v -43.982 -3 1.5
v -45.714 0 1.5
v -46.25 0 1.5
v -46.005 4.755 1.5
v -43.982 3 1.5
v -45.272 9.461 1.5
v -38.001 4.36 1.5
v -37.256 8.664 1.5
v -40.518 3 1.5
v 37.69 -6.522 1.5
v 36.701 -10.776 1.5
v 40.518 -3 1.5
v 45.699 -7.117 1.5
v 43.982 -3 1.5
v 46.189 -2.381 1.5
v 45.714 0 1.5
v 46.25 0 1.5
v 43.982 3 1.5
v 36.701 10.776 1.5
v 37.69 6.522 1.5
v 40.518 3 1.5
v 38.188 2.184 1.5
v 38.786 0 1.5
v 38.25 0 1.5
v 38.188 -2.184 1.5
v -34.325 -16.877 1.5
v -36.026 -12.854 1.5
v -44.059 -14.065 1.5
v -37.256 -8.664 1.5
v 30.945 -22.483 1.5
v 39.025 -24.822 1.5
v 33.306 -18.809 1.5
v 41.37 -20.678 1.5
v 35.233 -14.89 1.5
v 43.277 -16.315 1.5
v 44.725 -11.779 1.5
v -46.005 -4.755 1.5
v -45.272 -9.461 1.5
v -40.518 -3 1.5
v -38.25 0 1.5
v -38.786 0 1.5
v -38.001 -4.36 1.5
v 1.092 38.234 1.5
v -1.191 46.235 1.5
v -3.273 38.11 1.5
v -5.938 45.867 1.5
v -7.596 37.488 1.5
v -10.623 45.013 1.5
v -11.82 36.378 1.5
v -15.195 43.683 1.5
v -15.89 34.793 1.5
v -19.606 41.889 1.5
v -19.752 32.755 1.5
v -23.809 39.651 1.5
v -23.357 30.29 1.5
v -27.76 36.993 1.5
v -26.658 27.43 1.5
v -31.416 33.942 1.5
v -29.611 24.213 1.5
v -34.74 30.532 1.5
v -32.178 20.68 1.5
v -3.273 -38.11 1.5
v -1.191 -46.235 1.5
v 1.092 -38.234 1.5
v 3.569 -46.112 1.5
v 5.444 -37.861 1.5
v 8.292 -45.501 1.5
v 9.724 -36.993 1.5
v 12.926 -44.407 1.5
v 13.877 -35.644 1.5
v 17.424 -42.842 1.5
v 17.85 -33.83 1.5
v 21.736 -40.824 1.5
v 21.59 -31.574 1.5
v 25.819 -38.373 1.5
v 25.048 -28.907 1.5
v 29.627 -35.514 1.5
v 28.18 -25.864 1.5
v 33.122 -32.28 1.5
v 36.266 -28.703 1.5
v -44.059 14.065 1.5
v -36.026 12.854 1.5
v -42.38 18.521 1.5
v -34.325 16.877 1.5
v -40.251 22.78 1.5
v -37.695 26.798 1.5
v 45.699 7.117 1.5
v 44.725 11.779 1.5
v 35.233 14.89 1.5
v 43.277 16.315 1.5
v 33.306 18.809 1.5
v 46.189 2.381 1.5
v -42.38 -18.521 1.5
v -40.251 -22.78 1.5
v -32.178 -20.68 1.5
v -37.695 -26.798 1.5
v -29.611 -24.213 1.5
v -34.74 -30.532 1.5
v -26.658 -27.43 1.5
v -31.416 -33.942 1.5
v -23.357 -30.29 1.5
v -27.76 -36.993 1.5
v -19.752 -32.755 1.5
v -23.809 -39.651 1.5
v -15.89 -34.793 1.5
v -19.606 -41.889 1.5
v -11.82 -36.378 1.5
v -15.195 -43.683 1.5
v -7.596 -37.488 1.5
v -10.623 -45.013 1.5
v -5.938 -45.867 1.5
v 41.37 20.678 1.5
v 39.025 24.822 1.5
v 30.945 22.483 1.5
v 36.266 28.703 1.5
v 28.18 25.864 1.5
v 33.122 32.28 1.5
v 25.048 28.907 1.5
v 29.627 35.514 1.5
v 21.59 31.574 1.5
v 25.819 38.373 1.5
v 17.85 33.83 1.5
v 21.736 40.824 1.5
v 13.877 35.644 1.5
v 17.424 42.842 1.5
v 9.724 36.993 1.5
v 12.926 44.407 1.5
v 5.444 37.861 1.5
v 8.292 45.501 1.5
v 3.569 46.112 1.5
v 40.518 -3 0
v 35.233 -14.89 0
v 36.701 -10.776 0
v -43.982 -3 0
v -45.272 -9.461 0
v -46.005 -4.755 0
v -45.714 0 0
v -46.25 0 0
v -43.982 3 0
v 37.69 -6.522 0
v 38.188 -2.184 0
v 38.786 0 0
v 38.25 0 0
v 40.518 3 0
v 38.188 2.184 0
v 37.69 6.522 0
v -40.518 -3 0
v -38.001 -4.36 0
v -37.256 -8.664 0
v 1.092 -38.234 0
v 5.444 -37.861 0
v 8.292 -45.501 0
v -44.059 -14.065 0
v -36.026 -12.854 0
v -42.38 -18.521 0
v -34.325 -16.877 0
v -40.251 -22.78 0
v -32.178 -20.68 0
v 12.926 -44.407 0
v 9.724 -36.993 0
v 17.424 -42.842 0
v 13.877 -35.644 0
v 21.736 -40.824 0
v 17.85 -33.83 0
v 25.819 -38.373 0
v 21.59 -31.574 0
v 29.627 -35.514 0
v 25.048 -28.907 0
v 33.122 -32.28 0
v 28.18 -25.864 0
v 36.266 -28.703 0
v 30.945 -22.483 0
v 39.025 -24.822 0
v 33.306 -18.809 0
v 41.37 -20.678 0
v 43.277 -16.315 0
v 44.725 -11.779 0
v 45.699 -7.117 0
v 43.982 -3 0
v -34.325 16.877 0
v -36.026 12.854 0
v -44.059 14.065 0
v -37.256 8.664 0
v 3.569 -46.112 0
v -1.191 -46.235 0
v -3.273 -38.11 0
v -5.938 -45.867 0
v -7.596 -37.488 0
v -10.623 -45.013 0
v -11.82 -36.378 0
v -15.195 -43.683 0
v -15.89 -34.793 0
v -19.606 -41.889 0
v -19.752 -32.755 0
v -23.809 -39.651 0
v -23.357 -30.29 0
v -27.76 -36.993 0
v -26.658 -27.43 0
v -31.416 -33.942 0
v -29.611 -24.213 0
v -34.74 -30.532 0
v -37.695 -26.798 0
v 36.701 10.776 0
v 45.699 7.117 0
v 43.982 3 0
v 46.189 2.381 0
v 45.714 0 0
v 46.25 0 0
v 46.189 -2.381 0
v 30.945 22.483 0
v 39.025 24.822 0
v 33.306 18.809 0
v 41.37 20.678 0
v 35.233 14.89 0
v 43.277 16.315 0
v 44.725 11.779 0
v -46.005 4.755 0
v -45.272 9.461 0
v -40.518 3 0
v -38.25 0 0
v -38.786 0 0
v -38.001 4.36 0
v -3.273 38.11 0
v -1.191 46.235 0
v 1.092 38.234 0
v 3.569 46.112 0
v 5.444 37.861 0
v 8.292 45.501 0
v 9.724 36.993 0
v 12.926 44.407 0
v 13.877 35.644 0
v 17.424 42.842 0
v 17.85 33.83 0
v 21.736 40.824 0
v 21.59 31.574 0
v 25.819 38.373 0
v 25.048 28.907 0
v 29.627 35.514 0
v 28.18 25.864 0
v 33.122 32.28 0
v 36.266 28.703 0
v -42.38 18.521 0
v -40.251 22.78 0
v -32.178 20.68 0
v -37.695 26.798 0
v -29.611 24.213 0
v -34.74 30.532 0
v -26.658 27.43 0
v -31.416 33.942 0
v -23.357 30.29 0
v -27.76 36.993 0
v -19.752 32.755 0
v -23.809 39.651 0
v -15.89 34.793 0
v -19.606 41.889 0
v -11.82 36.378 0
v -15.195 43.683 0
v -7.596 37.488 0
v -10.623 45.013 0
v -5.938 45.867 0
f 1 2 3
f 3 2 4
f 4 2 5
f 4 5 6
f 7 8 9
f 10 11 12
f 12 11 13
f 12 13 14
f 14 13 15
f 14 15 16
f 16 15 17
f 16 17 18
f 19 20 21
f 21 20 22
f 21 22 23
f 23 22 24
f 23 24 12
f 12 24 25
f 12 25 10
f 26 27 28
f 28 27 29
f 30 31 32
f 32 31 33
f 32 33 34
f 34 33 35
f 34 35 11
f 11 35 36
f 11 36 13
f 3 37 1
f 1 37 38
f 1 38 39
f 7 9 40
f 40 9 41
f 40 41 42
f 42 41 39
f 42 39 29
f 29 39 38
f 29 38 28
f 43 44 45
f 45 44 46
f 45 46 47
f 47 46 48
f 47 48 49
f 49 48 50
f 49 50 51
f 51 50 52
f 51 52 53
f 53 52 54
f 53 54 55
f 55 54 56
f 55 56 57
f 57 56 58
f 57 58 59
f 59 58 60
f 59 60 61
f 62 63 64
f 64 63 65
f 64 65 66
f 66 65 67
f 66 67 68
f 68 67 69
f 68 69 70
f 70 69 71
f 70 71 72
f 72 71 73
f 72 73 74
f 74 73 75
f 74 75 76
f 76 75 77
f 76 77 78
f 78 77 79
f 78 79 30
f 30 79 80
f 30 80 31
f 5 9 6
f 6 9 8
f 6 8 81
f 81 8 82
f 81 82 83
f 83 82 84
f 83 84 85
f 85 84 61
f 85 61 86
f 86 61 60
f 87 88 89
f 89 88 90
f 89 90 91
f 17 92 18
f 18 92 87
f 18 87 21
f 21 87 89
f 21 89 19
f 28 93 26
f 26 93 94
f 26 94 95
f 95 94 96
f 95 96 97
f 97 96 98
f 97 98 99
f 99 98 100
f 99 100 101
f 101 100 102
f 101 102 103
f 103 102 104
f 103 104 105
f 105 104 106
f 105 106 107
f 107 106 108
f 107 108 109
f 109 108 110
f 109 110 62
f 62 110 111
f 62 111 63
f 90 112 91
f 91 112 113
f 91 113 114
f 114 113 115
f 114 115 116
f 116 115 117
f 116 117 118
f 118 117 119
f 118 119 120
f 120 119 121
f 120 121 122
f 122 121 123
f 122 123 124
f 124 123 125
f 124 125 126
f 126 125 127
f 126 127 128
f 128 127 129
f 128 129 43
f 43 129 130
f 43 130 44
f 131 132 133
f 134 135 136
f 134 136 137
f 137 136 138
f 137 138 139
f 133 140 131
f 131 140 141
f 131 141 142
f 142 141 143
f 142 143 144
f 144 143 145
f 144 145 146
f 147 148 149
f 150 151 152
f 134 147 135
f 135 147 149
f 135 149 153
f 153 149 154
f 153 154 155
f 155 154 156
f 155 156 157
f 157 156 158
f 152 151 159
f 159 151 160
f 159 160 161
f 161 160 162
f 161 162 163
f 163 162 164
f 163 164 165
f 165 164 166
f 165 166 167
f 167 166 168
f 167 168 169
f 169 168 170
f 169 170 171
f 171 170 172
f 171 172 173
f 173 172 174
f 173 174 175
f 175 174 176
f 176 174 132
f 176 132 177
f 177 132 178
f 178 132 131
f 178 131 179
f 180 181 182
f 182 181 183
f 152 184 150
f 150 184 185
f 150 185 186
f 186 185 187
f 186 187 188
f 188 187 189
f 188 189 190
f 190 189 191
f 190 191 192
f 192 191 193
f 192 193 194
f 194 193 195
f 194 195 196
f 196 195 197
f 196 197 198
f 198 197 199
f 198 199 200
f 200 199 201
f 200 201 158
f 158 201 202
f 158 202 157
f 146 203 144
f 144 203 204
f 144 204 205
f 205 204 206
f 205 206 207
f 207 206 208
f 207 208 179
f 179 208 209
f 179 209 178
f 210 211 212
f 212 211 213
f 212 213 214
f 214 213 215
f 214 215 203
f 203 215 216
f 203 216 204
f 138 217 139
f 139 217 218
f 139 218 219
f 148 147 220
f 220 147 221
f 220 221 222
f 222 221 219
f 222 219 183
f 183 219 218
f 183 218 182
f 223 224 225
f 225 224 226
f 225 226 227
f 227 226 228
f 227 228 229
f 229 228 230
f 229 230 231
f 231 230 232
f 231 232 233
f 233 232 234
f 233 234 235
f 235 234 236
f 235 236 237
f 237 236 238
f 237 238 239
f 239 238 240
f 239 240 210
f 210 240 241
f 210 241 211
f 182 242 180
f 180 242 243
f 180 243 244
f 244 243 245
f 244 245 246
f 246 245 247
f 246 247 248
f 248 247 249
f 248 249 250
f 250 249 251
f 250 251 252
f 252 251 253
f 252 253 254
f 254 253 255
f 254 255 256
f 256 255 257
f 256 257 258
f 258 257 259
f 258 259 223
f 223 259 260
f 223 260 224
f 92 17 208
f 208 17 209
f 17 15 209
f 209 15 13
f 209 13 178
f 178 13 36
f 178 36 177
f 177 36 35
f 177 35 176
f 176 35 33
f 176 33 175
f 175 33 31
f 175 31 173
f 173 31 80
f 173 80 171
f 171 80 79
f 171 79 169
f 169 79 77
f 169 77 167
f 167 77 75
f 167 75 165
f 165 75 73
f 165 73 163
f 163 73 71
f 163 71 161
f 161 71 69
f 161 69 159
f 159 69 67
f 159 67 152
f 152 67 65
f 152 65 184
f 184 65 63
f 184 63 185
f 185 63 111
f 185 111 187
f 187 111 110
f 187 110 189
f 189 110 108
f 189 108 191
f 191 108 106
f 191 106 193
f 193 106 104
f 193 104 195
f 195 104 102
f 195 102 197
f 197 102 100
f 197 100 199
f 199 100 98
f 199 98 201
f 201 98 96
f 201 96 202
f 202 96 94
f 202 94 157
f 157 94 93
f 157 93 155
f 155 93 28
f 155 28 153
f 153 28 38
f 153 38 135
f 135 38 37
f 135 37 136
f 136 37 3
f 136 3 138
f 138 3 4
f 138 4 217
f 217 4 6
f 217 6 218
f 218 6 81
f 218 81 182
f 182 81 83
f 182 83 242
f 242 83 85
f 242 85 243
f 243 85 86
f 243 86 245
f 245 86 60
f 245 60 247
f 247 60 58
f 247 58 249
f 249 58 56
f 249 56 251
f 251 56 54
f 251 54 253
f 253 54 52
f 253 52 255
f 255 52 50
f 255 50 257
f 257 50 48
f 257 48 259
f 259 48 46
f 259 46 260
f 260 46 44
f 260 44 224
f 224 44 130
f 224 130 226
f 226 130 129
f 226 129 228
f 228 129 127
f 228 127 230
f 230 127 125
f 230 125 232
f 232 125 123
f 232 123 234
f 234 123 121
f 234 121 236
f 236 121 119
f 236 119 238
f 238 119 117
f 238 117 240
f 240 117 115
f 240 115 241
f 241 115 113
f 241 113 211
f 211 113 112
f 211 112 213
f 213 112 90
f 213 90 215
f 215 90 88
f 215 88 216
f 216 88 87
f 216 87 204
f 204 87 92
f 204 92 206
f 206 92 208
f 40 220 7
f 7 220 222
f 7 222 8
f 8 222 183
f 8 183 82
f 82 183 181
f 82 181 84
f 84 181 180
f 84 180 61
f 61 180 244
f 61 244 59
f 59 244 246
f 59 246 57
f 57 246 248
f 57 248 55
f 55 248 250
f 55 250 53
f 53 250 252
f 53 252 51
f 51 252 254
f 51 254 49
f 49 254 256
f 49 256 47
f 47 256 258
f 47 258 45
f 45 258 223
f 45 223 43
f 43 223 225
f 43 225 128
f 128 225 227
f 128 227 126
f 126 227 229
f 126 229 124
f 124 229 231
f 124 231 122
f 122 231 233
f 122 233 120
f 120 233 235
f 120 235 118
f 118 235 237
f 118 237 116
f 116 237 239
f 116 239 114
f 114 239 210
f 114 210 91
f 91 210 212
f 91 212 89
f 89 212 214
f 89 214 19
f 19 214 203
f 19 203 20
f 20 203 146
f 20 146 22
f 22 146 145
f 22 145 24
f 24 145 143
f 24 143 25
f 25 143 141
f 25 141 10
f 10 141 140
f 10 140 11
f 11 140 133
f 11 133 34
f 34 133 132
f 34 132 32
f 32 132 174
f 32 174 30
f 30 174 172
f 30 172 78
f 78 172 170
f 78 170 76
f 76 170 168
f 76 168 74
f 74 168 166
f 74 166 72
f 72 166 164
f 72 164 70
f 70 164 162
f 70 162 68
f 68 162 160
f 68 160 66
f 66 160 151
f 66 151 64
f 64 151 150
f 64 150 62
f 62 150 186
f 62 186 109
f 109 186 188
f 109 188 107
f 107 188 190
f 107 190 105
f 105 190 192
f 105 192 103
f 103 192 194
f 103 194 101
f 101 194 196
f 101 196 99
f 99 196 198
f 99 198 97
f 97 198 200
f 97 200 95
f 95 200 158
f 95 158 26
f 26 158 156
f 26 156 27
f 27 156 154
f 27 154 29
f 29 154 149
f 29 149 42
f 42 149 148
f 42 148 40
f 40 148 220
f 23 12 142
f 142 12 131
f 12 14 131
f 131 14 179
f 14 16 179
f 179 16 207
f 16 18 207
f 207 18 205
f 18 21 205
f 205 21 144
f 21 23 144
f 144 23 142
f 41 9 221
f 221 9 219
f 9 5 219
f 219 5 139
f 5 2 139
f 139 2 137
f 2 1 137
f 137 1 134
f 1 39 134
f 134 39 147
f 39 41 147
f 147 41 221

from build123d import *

# Parameters (mm, degrees)
ESQUISSE1_R        = 46.25
ESQUISSE1_R_2      = 38.25
BOSS_EXTRU_1_DEPTH = 1.5


with BuildPart() as part:
    # Esquisse1 → Boss.-Extru.1 (new body)
    with BuildSketch(Plane.XY):
        Circle(ESQUISSE1_R)
        Circle(ESQUISSE1_R_2, mode=Mode.SUBTRACT)
        Polygon((-40.517949192, 3), (-43.982050808, 3), (-45.714101615, 0), (-43.982050808, -3), (-40.517949192, -3), (-38.785898385, 0), align=None, mode=Mode.SUBTRACT)
        Polygon((38.785898385, 0), (40.517949192, 3), (43.982050808, 3), (45.714101615, 0), (43.982050808, -3), (40.517949192, -3), align=None, mode=Mode.SUBTRACT)
    extrude(amount=BOSS_EXTRU_1_DEPTH)


solid = part.part
